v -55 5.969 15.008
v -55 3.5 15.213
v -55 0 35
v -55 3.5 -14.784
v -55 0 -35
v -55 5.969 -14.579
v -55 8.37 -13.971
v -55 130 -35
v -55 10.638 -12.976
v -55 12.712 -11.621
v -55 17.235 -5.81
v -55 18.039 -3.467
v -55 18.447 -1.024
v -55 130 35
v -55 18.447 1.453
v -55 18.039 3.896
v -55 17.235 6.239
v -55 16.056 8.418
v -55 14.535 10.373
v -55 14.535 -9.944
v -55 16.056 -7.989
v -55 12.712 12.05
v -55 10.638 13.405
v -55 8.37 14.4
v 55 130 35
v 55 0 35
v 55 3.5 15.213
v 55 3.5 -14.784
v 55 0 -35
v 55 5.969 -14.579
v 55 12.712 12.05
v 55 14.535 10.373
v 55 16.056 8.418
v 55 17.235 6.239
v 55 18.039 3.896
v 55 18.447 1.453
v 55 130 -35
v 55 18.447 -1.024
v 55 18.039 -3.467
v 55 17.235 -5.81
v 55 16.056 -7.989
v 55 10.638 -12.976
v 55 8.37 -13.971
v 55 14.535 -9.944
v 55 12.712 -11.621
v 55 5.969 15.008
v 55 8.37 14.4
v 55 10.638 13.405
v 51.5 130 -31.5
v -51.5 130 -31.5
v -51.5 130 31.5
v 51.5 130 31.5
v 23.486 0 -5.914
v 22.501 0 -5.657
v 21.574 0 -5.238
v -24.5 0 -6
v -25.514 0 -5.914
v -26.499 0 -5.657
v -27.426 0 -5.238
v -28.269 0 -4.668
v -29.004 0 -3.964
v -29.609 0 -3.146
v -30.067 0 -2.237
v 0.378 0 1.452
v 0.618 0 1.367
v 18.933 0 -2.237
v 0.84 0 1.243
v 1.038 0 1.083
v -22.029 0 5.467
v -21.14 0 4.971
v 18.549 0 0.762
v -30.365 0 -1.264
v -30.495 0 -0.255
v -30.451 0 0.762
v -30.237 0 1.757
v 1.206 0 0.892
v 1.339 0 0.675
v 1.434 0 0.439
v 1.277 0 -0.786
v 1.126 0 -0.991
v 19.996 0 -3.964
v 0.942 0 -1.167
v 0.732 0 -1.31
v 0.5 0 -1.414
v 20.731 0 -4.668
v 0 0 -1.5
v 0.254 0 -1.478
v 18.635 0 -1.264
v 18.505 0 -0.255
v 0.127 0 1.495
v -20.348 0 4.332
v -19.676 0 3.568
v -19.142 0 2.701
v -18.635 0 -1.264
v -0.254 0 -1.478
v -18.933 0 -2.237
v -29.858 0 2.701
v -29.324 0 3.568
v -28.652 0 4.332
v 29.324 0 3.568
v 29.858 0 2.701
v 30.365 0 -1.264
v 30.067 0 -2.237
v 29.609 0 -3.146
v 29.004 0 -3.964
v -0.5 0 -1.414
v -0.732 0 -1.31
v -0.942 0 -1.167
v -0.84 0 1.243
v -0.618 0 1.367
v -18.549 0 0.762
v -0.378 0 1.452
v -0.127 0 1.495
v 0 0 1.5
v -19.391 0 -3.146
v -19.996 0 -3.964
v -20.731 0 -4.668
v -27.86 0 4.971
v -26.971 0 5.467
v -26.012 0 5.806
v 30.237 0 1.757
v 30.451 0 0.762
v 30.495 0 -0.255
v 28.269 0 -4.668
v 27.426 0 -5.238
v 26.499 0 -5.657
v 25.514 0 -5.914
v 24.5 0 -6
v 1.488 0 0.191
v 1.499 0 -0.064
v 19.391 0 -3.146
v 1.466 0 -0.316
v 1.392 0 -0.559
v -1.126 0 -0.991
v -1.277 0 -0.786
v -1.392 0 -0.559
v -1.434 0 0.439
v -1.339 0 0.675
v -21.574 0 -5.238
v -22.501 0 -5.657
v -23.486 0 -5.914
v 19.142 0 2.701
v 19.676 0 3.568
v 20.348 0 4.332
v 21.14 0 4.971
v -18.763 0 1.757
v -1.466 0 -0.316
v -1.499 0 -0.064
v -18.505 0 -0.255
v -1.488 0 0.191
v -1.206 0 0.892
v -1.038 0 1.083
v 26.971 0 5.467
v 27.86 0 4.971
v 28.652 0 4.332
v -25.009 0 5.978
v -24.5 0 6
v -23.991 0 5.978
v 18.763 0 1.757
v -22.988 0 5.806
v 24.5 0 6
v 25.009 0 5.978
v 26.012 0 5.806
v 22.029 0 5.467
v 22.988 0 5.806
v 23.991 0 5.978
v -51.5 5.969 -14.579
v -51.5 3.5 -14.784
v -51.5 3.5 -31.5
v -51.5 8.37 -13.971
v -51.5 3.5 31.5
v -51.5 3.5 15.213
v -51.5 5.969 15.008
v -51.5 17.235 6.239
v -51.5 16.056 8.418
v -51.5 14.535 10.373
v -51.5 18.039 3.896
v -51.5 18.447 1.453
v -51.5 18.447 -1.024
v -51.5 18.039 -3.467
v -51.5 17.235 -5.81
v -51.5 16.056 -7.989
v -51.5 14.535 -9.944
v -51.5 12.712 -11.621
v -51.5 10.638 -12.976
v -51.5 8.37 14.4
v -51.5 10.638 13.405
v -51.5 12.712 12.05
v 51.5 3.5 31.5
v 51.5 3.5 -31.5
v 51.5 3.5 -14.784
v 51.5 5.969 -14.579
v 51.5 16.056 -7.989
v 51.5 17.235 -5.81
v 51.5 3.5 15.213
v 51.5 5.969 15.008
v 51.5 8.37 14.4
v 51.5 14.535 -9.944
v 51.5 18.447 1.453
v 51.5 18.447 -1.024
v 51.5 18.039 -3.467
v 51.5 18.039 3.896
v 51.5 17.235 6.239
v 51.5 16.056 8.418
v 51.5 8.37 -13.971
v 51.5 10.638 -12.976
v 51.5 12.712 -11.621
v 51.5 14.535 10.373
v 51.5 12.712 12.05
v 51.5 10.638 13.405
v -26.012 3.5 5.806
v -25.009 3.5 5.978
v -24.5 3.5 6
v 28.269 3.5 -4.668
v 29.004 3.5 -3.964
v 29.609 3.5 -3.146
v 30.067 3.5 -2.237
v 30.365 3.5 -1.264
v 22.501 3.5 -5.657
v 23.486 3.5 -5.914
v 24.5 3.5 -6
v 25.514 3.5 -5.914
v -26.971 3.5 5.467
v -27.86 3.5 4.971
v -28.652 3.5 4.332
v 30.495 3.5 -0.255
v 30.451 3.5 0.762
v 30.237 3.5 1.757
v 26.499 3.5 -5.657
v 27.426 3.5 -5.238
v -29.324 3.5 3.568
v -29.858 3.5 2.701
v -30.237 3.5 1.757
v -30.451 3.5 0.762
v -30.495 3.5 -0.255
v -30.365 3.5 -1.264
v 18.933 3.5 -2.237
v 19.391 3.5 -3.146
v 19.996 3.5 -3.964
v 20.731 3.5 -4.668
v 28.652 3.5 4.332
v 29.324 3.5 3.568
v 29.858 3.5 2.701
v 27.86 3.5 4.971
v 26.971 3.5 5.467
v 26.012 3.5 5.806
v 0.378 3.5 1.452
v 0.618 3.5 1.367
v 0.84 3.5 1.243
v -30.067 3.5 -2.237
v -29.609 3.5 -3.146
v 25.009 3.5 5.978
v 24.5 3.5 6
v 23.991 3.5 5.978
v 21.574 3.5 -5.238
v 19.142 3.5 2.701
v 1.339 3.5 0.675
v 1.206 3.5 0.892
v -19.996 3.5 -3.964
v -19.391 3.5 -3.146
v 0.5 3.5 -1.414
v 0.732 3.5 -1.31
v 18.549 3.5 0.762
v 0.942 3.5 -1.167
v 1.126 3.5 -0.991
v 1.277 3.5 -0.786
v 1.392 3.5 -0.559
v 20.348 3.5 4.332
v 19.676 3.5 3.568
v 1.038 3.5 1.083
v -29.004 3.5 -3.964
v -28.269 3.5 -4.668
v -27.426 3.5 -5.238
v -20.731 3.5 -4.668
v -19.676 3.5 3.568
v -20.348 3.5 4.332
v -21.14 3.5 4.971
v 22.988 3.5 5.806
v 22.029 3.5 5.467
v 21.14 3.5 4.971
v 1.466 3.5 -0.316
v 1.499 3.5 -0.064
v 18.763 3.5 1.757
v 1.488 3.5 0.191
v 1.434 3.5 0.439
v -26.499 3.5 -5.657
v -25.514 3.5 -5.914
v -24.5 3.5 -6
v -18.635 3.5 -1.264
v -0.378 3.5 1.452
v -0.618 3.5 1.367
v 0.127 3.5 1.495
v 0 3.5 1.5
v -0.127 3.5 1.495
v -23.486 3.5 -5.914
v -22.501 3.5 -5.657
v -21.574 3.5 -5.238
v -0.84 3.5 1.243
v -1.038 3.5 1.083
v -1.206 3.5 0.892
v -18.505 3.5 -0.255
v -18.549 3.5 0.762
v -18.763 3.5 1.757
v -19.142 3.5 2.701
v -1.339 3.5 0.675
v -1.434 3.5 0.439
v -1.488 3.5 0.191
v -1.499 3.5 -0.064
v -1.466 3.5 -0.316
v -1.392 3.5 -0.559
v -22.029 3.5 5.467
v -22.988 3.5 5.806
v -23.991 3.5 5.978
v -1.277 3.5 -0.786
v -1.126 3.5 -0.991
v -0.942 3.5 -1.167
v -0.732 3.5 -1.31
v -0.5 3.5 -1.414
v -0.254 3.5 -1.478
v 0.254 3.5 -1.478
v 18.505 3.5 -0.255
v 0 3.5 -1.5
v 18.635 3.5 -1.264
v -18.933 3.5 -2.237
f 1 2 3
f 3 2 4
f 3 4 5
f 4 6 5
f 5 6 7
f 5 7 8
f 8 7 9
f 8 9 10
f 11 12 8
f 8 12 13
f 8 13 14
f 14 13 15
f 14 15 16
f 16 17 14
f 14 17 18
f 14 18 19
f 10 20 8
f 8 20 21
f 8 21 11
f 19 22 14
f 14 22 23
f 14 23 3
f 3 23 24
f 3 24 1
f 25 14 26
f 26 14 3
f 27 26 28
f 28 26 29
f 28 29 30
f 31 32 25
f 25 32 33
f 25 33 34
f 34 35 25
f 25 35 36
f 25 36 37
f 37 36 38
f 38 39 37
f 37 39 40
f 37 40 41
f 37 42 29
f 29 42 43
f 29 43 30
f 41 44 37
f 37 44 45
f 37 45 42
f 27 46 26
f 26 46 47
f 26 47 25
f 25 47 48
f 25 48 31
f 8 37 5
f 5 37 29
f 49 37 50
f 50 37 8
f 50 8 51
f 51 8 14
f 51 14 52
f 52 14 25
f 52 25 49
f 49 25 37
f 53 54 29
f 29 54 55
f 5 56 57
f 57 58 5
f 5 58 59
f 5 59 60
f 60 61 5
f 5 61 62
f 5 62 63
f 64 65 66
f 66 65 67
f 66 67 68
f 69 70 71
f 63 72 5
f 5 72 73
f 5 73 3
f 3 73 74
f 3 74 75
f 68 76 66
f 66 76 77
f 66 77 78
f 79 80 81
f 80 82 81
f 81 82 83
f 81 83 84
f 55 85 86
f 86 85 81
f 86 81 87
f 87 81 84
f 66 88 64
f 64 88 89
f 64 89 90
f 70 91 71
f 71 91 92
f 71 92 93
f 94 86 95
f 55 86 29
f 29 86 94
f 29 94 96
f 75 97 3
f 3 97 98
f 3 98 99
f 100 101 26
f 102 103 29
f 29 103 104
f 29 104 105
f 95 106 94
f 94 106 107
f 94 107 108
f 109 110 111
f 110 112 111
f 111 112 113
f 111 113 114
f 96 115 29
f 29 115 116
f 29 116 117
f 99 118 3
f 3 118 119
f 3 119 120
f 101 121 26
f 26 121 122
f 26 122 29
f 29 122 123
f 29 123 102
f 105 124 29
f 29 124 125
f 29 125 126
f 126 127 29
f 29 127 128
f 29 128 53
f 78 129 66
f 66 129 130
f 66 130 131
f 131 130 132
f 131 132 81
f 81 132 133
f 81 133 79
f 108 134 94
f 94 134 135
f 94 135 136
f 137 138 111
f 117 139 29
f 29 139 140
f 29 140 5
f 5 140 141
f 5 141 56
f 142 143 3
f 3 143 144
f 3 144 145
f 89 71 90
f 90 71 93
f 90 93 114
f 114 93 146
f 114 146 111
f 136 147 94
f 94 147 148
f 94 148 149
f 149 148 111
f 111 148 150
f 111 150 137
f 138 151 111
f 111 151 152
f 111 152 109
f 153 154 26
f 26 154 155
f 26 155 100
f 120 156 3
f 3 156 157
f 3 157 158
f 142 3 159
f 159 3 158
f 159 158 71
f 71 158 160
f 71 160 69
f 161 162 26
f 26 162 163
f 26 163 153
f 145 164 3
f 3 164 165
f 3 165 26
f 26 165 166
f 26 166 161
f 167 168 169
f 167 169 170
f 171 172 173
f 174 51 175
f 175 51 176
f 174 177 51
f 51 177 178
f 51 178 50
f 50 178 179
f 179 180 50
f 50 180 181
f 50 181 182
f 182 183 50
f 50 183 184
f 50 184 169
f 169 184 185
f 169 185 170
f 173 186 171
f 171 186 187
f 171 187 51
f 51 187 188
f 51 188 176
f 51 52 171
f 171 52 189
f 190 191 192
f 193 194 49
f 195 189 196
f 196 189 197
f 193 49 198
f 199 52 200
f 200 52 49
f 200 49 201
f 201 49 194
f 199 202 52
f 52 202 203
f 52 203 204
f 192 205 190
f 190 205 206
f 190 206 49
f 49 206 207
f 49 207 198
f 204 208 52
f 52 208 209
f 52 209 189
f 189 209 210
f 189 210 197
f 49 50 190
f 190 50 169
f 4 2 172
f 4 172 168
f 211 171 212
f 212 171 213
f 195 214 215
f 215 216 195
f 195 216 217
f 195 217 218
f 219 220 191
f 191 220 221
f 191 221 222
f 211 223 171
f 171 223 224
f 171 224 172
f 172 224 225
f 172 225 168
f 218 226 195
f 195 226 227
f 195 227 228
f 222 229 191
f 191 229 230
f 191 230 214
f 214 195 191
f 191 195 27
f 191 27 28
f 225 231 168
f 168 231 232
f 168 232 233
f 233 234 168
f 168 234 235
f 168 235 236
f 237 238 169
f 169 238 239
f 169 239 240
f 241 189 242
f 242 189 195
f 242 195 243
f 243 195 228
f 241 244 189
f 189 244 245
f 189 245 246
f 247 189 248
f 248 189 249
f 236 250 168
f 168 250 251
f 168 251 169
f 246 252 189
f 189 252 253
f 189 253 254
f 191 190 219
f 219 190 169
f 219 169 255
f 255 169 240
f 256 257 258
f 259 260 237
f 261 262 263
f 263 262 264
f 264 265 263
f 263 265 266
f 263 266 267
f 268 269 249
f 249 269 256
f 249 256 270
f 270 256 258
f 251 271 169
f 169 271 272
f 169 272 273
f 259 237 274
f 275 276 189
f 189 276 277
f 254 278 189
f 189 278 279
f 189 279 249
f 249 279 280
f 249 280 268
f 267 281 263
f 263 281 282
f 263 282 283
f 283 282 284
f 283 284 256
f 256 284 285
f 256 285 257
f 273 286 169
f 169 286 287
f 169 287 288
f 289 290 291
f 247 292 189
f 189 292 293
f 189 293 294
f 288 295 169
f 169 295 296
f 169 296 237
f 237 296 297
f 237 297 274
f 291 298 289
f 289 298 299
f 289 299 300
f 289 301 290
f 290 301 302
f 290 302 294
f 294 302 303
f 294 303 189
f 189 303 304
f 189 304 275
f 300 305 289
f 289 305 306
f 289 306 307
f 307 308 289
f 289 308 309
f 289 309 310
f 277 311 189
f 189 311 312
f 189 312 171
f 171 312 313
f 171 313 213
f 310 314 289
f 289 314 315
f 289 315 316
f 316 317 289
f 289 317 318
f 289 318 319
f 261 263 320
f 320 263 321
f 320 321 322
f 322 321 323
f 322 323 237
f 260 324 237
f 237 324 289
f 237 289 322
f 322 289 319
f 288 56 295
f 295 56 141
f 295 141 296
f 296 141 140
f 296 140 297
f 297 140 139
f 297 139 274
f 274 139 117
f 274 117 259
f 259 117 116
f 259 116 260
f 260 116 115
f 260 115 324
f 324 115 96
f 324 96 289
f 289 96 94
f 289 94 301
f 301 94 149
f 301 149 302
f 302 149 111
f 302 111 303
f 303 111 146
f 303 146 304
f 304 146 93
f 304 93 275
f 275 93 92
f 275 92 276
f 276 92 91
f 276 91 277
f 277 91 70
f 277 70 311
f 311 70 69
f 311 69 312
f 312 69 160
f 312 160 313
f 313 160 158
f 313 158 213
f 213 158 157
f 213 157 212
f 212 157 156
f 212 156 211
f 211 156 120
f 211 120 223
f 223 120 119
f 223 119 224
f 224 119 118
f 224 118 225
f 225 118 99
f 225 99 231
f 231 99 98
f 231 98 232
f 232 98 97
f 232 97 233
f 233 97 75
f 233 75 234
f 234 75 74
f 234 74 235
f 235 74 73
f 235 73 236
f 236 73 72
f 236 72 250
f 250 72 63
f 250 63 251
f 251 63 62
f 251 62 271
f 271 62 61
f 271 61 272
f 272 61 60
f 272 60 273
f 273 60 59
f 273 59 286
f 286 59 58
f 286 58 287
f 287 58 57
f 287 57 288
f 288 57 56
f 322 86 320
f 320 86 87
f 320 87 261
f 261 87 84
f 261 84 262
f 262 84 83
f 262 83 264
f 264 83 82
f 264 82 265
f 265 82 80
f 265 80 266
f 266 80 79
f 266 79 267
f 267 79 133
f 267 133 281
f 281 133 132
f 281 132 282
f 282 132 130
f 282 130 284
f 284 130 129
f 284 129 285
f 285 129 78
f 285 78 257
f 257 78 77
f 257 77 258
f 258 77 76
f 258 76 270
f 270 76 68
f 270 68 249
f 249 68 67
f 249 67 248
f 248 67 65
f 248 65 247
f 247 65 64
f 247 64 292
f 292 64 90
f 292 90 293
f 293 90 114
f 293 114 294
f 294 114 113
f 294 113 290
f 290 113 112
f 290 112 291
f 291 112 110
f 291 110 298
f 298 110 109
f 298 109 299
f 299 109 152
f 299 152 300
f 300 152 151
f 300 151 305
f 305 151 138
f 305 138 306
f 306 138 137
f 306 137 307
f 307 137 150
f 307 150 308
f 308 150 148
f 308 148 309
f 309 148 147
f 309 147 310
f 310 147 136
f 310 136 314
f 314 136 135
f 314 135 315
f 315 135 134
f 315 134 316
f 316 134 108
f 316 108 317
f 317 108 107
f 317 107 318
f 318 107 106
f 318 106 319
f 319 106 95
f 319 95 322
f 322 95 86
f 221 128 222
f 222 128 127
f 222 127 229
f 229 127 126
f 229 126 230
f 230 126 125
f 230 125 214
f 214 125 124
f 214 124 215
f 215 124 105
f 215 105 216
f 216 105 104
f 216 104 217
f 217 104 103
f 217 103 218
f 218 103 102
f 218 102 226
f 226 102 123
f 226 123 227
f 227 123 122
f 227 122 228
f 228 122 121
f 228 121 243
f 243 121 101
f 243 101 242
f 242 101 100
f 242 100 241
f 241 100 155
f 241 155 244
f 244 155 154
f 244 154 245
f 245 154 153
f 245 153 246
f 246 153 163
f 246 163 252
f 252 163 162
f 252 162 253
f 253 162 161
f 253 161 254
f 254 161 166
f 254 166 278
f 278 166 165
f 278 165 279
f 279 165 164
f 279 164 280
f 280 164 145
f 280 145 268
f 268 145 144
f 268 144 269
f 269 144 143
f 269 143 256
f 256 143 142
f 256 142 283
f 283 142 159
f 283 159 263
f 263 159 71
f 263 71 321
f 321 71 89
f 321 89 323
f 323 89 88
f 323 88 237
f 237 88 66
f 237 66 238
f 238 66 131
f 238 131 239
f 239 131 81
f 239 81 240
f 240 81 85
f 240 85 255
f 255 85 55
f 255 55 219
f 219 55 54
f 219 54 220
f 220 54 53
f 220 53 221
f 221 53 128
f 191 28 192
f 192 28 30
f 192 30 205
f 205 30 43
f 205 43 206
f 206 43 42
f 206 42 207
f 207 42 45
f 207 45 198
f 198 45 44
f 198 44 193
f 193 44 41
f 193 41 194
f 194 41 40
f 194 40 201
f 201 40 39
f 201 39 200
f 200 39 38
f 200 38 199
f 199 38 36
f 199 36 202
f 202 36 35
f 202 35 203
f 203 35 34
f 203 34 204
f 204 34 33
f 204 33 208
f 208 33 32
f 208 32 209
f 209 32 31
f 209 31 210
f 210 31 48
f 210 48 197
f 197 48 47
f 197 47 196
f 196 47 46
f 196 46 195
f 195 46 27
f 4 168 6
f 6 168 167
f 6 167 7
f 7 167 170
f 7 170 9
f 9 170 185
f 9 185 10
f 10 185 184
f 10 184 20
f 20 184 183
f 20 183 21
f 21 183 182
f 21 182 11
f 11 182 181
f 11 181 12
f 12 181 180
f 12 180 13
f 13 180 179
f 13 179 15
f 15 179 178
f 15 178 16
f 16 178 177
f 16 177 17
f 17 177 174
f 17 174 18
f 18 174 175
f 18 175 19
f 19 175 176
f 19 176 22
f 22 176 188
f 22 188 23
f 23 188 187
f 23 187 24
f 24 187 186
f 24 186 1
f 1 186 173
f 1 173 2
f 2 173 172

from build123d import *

# Parameters (mm, degrees)
CROQUIS1_W                 = 110
CROQUIS1_H                 = 70
SALIENTE_EXTRUIR3_DEPTH    = 130
VACIADO4_T                 = -3.5
CORTAR_EXTRUIR4_REACH      = 147.43
CROQUIS2_R                 = 6
CROQUIS2_R_2               = 1.5
CORTAR_EXTRUIR8_DEPTH      = 174.853386507
CORTAR_EXTRUIR8_DEPTH_BACK = 174.853386507


with BuildPart() as part:
    # Croquis1 → Saliente-Extruir3 (new body)
    with BuildSketch(Plane(origin=(0, 0, 0), x_dir=(1, 0, 0), z_dir=(0, 1, 0))):
        Rectangle(CROQUIS1_W, CROQUIS1_H)
    extrude(amount=SALIENTE_EXTRUIR3_DEPTH)

    # Vaciado4
    vaciado4_openings = [part.faces().sort_by_distance(p)[0] for p in [
        (0, 130, 0),
    ]]
    offset(amount=VACIADO4_T, openings=vaciado4_openings, kind=Kind.INTERSECTION)

    # Croquis2 → Cortar-Extruir4 (cut, up to next)
    with BuildSketch(Plane(origin=(0, 0, 0), x_dir=(1, 0, 0), z_dir=(0, 1, 0)), mode=Mode.PRIVATE) as cortar_extruir4_sk1:
        with Locations(Location((-24.5, 0, 0), (0, 0, 270))):
            Circle(CROQUIS2_R)
    cortar_extruir4_tool1 = extrude(cortar_extruir4_sk1.sketch, amount=CORTAR_EXTRUIR4_REACH, mode=Mode.PRIVATE) & part.part
    # Croquis2 → Cortar-Extruir4 (cut, up to next)
    with BuildSketch(Plane(origin=(0, 0, 0), x_dir=(1, 0, 0), z_dir=(0, 1, 0)), mode=Mode.PRIVATE) as cortar_extruir4_sk2:
        with Locations(Location((24.5, 0, 0), (0, 0, 270))):
            Circle(CROQUIS2_R)
    cortar_extruir4_tool2 = extrude(cortar_extruir4_sk2.sketch, amount=CORTAR_EXTRUIR4_REACH, mode=Mode.PRIVATE) & part.part
    # Croquis2 → Cortar-Extruir4 (cut, up to next)
    with BuildSketch(Plane(origin=(0, 0, 0), x_dir=(1, 0, 0), z_dir=(0, 1, 0)), mode=Mode.PRIVATE) as cortar_extruir4_sk3:
        with Locations(Location((0, 0, 0), (0, 0, 270))):
            Circle(CROQUIS2_R_2)
    cortar_extruir4_tool3 = extrude(cortar_extruir4_sk3.sketch, amount=CORTAR_EXTRUIR4_REACH, mode=Mode.PRIVATE) & part.part
    add(cortar_extruir4_tool1.solids().sort_by_distance((-24.5, 0, 0))[0], mode=Mode.SUBTRACT)
    add(cortar_extruir4_tool2.solids().sort_by_distance((24.5, 0, 0))[0], mode=Mode.SUBTRACT)
    add(cortar_extruir4_tool3.solids().sort_by_distance((0, 0, 0))[0], mode=Mode.SUBTRACT)

    # Croquis3 → Cortar-Extruir8 (cut, two sides: drawn at the far end of the back side and taken through both)
    with BuildSketch(Plane(origin=(55, 0, 0), x_dir=(0, 0, -1), z_dir=(1, 0, 0)).offset(-CORTAR_EXTRUIR8_DEPTH_BACK)):
        with BuildLine():
            Line((-15.212730717, 3.5), (14.783786757, 3.5))
            ThreePointArc((14.783786757, 3.5), (10.390898479, 14.105370459), (-0.21447198, 18.498258737))
            ThreePointArc((-0.21447198, 18.498258737), (-10.819842439, 14.105370459), (-15.212730717, 3.5))
        make_face()
    extrude(amount=CORTAR_EXTRUIR8_DEPTH + CORTAR_EXTRUIR8_DEPTH_BACK, mode=Mode.SUBTRACT)


solid = part.part
